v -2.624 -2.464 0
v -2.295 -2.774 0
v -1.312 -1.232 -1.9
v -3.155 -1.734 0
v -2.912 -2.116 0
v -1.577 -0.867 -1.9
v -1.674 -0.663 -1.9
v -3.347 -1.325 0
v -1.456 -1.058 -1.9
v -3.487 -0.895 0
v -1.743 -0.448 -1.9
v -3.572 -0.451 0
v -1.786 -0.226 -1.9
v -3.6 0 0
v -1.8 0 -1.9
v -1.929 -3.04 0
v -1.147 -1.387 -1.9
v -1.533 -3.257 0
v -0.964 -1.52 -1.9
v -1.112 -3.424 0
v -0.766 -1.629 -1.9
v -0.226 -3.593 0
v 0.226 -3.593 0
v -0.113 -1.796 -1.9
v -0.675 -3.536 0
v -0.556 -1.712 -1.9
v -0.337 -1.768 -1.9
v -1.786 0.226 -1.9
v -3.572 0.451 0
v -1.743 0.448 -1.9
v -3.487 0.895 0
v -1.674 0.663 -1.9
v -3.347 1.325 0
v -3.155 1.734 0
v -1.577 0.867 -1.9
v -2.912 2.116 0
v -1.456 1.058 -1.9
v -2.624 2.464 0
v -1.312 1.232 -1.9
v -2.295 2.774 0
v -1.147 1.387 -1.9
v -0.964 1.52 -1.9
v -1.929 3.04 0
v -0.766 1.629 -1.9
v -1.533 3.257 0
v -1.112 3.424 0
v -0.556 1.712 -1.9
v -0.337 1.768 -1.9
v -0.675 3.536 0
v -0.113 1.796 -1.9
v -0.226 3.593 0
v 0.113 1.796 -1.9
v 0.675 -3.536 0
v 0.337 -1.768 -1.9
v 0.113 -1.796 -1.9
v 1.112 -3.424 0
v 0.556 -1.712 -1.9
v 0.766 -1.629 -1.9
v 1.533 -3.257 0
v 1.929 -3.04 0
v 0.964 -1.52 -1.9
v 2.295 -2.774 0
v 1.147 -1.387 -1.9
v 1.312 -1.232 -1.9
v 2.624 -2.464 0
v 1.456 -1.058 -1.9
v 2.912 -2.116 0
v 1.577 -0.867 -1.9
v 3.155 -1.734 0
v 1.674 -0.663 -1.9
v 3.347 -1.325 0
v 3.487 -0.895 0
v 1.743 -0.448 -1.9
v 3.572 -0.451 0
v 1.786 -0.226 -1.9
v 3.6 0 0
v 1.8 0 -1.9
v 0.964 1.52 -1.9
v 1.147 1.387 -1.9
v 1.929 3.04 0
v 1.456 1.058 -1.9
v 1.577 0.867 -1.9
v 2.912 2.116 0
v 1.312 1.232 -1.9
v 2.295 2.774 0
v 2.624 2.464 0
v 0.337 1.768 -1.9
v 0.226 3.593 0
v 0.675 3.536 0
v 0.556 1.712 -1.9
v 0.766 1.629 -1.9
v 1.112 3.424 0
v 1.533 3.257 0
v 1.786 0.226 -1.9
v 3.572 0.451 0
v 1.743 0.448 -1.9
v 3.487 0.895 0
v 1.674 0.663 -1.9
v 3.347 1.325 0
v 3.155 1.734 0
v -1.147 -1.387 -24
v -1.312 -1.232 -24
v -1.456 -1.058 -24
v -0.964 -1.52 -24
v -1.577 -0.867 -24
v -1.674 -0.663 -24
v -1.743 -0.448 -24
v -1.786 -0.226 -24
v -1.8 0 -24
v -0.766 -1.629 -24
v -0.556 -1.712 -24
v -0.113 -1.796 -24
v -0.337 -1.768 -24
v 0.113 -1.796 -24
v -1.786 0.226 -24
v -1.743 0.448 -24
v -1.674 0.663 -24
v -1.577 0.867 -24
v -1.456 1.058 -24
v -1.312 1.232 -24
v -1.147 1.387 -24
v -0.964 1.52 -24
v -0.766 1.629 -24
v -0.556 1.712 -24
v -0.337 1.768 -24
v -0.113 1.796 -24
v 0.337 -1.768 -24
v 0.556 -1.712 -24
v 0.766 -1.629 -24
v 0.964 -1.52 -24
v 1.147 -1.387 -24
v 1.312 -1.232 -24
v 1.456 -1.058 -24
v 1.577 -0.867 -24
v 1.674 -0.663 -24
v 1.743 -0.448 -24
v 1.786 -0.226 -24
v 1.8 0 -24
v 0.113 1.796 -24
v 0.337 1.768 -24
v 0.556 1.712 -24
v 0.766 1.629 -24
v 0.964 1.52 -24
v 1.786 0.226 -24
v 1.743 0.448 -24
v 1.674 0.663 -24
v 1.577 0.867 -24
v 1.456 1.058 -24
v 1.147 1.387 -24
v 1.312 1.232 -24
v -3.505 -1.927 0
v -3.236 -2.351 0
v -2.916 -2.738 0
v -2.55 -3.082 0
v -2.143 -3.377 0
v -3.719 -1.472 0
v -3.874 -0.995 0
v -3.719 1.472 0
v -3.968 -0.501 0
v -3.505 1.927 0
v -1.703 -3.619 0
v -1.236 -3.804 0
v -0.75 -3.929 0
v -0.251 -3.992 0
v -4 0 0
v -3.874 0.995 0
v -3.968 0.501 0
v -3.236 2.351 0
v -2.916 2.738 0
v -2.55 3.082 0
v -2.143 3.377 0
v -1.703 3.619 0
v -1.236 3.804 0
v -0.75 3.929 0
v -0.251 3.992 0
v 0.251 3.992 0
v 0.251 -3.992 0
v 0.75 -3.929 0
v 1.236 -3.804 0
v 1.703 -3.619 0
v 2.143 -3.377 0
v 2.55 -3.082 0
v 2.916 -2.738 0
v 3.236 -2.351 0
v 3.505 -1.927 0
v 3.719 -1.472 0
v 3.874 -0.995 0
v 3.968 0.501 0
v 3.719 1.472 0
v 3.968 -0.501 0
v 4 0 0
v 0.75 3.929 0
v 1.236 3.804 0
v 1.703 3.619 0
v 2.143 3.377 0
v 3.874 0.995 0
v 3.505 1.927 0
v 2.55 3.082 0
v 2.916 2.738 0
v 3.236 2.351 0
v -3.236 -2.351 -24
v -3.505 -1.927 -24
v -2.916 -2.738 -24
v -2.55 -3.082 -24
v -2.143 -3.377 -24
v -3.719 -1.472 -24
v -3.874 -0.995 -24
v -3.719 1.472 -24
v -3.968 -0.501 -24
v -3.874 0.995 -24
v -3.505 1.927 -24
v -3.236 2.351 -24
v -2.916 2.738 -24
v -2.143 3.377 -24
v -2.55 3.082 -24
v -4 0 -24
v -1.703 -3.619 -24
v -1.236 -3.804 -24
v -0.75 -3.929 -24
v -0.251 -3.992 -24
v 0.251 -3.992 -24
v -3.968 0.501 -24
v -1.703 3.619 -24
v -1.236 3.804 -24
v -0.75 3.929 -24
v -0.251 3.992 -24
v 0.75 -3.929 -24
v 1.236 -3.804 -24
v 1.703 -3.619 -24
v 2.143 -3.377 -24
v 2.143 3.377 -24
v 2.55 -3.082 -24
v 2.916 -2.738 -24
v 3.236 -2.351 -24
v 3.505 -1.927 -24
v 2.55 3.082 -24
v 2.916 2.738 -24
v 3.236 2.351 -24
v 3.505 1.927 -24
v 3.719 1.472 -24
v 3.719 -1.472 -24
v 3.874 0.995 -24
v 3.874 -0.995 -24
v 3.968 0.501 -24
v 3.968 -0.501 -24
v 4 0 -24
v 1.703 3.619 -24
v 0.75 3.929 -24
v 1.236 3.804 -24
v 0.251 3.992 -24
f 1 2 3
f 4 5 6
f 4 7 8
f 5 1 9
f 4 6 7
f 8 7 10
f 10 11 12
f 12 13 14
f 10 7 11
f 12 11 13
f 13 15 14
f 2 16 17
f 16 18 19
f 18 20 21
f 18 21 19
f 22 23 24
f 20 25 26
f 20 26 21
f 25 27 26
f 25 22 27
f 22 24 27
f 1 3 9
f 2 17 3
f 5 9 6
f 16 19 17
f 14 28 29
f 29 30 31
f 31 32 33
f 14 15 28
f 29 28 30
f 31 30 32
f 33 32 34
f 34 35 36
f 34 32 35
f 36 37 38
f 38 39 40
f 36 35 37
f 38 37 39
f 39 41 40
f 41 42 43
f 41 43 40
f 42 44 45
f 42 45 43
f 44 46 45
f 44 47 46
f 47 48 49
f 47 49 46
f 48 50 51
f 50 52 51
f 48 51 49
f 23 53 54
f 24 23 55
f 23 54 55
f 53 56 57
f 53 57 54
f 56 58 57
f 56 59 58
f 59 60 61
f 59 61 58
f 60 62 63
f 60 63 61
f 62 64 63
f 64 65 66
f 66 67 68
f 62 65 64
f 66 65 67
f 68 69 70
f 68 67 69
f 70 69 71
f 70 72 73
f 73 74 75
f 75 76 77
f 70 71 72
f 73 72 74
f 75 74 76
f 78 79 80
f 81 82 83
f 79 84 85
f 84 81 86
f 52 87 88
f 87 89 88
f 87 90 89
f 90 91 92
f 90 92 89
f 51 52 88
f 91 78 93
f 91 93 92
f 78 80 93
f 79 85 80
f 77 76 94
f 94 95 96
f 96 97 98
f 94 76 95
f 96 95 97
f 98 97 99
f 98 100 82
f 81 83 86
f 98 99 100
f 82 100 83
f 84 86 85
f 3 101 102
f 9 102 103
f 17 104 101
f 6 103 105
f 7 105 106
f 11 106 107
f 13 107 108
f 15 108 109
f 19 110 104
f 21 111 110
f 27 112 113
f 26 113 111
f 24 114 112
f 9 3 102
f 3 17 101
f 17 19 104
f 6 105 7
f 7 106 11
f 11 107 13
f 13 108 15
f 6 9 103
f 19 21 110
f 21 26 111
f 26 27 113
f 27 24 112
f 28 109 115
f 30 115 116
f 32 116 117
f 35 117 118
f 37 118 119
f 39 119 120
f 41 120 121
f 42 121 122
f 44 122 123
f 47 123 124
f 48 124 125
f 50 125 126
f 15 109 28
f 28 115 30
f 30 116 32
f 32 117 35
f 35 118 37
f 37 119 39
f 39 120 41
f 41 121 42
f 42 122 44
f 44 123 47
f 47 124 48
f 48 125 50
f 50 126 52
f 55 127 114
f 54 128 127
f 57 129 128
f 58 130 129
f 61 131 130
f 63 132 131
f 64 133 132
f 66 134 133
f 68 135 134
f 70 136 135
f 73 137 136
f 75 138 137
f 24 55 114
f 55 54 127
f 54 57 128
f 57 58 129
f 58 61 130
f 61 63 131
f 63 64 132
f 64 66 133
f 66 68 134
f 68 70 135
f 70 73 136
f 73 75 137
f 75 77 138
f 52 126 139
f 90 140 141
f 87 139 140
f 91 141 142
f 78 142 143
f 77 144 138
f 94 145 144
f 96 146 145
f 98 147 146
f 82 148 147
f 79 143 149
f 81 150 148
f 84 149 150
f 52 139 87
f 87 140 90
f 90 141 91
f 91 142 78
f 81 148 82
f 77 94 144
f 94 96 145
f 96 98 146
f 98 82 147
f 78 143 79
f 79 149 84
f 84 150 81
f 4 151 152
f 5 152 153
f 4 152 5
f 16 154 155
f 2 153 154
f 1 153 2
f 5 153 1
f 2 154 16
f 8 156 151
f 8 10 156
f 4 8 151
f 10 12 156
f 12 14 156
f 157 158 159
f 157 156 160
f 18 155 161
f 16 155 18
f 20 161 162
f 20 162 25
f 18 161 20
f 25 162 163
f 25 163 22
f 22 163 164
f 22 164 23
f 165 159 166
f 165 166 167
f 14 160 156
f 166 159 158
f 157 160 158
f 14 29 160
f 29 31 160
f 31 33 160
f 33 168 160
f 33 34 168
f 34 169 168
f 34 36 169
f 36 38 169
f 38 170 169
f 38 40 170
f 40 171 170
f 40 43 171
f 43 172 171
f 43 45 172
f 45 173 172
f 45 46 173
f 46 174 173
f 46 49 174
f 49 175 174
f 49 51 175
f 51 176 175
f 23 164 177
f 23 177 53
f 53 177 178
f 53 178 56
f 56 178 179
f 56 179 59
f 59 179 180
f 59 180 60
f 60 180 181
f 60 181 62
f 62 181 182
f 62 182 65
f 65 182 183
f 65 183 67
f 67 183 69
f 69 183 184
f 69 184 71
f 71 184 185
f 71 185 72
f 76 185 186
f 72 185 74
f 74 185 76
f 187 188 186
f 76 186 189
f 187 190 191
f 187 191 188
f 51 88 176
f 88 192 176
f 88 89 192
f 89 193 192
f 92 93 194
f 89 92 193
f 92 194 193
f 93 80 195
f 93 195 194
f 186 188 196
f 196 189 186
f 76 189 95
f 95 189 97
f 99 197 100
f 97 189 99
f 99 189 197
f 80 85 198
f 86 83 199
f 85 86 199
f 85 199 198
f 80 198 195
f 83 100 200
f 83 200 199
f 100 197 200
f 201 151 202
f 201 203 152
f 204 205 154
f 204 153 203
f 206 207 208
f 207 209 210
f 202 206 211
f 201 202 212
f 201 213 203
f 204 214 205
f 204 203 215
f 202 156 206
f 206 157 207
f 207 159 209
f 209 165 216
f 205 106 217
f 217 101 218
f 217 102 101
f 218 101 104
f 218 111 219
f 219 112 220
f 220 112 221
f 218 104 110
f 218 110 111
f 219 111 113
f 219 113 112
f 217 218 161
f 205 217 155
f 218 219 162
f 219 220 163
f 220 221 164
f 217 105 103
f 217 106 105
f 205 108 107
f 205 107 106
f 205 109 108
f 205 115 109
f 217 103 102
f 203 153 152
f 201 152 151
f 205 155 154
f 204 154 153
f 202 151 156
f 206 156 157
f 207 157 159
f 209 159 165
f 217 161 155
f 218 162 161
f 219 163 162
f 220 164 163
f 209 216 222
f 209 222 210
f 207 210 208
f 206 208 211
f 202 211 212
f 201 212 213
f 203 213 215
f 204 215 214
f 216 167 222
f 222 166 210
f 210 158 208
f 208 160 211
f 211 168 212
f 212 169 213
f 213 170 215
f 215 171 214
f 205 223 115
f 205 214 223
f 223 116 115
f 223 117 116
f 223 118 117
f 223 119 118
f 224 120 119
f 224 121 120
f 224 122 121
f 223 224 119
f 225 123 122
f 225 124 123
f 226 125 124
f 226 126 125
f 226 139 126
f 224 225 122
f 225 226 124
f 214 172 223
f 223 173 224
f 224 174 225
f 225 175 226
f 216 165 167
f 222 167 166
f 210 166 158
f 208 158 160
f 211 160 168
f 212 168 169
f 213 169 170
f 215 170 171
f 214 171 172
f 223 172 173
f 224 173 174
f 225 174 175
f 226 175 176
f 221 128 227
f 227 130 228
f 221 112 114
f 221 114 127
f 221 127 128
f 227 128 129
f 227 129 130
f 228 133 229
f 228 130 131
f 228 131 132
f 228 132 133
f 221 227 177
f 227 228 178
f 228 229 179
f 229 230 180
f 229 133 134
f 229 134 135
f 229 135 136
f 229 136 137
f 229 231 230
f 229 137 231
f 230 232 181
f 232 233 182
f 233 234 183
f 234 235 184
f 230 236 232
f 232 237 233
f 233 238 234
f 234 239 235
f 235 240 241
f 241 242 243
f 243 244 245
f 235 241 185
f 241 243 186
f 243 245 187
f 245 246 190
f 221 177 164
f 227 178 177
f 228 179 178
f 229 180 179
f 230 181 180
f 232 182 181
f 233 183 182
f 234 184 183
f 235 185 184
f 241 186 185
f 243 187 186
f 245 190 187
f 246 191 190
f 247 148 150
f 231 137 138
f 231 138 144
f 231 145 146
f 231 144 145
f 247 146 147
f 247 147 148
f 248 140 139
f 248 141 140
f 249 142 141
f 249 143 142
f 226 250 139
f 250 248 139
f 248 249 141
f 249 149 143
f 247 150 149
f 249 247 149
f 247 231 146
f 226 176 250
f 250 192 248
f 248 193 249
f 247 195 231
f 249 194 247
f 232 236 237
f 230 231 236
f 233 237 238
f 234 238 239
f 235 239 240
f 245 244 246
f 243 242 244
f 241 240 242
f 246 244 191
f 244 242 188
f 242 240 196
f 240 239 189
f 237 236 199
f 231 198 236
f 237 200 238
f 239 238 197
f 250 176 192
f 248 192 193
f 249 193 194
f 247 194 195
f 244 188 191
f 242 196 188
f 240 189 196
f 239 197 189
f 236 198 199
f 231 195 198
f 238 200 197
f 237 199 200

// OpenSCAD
$fn = 50;

difference() {
	union() {
		translate(v = [0, 0, -24.0]) {
			cylinder(h = 27, r = 4.0);
		}
	}
	union() {
		translate(v = [0, 0, 0]) {
			rotate(a = [0, 0, 0]) {
				difference() {
					union() {
						translate(v = [0, 0, -27.0]) {
							cylinder(h = 27, r = 1.5);
						}
						translate(v = [0, 0, -1.9]) {
							cylinder(h = 1.9, r1 = 1.8, r2 = 3.6);
						}
						translate(v = [0, 0, -27.0]) {
							cylinder(h = 27, r = 1.8);
						}
						translate(v = [0, 0, -27.0]) {
							cylinder(h = 27, r = 1.5);
						}
					}
					union();
				}
			}
		}
		#cylinder(h = 3, r = 5.0);
	}
}
